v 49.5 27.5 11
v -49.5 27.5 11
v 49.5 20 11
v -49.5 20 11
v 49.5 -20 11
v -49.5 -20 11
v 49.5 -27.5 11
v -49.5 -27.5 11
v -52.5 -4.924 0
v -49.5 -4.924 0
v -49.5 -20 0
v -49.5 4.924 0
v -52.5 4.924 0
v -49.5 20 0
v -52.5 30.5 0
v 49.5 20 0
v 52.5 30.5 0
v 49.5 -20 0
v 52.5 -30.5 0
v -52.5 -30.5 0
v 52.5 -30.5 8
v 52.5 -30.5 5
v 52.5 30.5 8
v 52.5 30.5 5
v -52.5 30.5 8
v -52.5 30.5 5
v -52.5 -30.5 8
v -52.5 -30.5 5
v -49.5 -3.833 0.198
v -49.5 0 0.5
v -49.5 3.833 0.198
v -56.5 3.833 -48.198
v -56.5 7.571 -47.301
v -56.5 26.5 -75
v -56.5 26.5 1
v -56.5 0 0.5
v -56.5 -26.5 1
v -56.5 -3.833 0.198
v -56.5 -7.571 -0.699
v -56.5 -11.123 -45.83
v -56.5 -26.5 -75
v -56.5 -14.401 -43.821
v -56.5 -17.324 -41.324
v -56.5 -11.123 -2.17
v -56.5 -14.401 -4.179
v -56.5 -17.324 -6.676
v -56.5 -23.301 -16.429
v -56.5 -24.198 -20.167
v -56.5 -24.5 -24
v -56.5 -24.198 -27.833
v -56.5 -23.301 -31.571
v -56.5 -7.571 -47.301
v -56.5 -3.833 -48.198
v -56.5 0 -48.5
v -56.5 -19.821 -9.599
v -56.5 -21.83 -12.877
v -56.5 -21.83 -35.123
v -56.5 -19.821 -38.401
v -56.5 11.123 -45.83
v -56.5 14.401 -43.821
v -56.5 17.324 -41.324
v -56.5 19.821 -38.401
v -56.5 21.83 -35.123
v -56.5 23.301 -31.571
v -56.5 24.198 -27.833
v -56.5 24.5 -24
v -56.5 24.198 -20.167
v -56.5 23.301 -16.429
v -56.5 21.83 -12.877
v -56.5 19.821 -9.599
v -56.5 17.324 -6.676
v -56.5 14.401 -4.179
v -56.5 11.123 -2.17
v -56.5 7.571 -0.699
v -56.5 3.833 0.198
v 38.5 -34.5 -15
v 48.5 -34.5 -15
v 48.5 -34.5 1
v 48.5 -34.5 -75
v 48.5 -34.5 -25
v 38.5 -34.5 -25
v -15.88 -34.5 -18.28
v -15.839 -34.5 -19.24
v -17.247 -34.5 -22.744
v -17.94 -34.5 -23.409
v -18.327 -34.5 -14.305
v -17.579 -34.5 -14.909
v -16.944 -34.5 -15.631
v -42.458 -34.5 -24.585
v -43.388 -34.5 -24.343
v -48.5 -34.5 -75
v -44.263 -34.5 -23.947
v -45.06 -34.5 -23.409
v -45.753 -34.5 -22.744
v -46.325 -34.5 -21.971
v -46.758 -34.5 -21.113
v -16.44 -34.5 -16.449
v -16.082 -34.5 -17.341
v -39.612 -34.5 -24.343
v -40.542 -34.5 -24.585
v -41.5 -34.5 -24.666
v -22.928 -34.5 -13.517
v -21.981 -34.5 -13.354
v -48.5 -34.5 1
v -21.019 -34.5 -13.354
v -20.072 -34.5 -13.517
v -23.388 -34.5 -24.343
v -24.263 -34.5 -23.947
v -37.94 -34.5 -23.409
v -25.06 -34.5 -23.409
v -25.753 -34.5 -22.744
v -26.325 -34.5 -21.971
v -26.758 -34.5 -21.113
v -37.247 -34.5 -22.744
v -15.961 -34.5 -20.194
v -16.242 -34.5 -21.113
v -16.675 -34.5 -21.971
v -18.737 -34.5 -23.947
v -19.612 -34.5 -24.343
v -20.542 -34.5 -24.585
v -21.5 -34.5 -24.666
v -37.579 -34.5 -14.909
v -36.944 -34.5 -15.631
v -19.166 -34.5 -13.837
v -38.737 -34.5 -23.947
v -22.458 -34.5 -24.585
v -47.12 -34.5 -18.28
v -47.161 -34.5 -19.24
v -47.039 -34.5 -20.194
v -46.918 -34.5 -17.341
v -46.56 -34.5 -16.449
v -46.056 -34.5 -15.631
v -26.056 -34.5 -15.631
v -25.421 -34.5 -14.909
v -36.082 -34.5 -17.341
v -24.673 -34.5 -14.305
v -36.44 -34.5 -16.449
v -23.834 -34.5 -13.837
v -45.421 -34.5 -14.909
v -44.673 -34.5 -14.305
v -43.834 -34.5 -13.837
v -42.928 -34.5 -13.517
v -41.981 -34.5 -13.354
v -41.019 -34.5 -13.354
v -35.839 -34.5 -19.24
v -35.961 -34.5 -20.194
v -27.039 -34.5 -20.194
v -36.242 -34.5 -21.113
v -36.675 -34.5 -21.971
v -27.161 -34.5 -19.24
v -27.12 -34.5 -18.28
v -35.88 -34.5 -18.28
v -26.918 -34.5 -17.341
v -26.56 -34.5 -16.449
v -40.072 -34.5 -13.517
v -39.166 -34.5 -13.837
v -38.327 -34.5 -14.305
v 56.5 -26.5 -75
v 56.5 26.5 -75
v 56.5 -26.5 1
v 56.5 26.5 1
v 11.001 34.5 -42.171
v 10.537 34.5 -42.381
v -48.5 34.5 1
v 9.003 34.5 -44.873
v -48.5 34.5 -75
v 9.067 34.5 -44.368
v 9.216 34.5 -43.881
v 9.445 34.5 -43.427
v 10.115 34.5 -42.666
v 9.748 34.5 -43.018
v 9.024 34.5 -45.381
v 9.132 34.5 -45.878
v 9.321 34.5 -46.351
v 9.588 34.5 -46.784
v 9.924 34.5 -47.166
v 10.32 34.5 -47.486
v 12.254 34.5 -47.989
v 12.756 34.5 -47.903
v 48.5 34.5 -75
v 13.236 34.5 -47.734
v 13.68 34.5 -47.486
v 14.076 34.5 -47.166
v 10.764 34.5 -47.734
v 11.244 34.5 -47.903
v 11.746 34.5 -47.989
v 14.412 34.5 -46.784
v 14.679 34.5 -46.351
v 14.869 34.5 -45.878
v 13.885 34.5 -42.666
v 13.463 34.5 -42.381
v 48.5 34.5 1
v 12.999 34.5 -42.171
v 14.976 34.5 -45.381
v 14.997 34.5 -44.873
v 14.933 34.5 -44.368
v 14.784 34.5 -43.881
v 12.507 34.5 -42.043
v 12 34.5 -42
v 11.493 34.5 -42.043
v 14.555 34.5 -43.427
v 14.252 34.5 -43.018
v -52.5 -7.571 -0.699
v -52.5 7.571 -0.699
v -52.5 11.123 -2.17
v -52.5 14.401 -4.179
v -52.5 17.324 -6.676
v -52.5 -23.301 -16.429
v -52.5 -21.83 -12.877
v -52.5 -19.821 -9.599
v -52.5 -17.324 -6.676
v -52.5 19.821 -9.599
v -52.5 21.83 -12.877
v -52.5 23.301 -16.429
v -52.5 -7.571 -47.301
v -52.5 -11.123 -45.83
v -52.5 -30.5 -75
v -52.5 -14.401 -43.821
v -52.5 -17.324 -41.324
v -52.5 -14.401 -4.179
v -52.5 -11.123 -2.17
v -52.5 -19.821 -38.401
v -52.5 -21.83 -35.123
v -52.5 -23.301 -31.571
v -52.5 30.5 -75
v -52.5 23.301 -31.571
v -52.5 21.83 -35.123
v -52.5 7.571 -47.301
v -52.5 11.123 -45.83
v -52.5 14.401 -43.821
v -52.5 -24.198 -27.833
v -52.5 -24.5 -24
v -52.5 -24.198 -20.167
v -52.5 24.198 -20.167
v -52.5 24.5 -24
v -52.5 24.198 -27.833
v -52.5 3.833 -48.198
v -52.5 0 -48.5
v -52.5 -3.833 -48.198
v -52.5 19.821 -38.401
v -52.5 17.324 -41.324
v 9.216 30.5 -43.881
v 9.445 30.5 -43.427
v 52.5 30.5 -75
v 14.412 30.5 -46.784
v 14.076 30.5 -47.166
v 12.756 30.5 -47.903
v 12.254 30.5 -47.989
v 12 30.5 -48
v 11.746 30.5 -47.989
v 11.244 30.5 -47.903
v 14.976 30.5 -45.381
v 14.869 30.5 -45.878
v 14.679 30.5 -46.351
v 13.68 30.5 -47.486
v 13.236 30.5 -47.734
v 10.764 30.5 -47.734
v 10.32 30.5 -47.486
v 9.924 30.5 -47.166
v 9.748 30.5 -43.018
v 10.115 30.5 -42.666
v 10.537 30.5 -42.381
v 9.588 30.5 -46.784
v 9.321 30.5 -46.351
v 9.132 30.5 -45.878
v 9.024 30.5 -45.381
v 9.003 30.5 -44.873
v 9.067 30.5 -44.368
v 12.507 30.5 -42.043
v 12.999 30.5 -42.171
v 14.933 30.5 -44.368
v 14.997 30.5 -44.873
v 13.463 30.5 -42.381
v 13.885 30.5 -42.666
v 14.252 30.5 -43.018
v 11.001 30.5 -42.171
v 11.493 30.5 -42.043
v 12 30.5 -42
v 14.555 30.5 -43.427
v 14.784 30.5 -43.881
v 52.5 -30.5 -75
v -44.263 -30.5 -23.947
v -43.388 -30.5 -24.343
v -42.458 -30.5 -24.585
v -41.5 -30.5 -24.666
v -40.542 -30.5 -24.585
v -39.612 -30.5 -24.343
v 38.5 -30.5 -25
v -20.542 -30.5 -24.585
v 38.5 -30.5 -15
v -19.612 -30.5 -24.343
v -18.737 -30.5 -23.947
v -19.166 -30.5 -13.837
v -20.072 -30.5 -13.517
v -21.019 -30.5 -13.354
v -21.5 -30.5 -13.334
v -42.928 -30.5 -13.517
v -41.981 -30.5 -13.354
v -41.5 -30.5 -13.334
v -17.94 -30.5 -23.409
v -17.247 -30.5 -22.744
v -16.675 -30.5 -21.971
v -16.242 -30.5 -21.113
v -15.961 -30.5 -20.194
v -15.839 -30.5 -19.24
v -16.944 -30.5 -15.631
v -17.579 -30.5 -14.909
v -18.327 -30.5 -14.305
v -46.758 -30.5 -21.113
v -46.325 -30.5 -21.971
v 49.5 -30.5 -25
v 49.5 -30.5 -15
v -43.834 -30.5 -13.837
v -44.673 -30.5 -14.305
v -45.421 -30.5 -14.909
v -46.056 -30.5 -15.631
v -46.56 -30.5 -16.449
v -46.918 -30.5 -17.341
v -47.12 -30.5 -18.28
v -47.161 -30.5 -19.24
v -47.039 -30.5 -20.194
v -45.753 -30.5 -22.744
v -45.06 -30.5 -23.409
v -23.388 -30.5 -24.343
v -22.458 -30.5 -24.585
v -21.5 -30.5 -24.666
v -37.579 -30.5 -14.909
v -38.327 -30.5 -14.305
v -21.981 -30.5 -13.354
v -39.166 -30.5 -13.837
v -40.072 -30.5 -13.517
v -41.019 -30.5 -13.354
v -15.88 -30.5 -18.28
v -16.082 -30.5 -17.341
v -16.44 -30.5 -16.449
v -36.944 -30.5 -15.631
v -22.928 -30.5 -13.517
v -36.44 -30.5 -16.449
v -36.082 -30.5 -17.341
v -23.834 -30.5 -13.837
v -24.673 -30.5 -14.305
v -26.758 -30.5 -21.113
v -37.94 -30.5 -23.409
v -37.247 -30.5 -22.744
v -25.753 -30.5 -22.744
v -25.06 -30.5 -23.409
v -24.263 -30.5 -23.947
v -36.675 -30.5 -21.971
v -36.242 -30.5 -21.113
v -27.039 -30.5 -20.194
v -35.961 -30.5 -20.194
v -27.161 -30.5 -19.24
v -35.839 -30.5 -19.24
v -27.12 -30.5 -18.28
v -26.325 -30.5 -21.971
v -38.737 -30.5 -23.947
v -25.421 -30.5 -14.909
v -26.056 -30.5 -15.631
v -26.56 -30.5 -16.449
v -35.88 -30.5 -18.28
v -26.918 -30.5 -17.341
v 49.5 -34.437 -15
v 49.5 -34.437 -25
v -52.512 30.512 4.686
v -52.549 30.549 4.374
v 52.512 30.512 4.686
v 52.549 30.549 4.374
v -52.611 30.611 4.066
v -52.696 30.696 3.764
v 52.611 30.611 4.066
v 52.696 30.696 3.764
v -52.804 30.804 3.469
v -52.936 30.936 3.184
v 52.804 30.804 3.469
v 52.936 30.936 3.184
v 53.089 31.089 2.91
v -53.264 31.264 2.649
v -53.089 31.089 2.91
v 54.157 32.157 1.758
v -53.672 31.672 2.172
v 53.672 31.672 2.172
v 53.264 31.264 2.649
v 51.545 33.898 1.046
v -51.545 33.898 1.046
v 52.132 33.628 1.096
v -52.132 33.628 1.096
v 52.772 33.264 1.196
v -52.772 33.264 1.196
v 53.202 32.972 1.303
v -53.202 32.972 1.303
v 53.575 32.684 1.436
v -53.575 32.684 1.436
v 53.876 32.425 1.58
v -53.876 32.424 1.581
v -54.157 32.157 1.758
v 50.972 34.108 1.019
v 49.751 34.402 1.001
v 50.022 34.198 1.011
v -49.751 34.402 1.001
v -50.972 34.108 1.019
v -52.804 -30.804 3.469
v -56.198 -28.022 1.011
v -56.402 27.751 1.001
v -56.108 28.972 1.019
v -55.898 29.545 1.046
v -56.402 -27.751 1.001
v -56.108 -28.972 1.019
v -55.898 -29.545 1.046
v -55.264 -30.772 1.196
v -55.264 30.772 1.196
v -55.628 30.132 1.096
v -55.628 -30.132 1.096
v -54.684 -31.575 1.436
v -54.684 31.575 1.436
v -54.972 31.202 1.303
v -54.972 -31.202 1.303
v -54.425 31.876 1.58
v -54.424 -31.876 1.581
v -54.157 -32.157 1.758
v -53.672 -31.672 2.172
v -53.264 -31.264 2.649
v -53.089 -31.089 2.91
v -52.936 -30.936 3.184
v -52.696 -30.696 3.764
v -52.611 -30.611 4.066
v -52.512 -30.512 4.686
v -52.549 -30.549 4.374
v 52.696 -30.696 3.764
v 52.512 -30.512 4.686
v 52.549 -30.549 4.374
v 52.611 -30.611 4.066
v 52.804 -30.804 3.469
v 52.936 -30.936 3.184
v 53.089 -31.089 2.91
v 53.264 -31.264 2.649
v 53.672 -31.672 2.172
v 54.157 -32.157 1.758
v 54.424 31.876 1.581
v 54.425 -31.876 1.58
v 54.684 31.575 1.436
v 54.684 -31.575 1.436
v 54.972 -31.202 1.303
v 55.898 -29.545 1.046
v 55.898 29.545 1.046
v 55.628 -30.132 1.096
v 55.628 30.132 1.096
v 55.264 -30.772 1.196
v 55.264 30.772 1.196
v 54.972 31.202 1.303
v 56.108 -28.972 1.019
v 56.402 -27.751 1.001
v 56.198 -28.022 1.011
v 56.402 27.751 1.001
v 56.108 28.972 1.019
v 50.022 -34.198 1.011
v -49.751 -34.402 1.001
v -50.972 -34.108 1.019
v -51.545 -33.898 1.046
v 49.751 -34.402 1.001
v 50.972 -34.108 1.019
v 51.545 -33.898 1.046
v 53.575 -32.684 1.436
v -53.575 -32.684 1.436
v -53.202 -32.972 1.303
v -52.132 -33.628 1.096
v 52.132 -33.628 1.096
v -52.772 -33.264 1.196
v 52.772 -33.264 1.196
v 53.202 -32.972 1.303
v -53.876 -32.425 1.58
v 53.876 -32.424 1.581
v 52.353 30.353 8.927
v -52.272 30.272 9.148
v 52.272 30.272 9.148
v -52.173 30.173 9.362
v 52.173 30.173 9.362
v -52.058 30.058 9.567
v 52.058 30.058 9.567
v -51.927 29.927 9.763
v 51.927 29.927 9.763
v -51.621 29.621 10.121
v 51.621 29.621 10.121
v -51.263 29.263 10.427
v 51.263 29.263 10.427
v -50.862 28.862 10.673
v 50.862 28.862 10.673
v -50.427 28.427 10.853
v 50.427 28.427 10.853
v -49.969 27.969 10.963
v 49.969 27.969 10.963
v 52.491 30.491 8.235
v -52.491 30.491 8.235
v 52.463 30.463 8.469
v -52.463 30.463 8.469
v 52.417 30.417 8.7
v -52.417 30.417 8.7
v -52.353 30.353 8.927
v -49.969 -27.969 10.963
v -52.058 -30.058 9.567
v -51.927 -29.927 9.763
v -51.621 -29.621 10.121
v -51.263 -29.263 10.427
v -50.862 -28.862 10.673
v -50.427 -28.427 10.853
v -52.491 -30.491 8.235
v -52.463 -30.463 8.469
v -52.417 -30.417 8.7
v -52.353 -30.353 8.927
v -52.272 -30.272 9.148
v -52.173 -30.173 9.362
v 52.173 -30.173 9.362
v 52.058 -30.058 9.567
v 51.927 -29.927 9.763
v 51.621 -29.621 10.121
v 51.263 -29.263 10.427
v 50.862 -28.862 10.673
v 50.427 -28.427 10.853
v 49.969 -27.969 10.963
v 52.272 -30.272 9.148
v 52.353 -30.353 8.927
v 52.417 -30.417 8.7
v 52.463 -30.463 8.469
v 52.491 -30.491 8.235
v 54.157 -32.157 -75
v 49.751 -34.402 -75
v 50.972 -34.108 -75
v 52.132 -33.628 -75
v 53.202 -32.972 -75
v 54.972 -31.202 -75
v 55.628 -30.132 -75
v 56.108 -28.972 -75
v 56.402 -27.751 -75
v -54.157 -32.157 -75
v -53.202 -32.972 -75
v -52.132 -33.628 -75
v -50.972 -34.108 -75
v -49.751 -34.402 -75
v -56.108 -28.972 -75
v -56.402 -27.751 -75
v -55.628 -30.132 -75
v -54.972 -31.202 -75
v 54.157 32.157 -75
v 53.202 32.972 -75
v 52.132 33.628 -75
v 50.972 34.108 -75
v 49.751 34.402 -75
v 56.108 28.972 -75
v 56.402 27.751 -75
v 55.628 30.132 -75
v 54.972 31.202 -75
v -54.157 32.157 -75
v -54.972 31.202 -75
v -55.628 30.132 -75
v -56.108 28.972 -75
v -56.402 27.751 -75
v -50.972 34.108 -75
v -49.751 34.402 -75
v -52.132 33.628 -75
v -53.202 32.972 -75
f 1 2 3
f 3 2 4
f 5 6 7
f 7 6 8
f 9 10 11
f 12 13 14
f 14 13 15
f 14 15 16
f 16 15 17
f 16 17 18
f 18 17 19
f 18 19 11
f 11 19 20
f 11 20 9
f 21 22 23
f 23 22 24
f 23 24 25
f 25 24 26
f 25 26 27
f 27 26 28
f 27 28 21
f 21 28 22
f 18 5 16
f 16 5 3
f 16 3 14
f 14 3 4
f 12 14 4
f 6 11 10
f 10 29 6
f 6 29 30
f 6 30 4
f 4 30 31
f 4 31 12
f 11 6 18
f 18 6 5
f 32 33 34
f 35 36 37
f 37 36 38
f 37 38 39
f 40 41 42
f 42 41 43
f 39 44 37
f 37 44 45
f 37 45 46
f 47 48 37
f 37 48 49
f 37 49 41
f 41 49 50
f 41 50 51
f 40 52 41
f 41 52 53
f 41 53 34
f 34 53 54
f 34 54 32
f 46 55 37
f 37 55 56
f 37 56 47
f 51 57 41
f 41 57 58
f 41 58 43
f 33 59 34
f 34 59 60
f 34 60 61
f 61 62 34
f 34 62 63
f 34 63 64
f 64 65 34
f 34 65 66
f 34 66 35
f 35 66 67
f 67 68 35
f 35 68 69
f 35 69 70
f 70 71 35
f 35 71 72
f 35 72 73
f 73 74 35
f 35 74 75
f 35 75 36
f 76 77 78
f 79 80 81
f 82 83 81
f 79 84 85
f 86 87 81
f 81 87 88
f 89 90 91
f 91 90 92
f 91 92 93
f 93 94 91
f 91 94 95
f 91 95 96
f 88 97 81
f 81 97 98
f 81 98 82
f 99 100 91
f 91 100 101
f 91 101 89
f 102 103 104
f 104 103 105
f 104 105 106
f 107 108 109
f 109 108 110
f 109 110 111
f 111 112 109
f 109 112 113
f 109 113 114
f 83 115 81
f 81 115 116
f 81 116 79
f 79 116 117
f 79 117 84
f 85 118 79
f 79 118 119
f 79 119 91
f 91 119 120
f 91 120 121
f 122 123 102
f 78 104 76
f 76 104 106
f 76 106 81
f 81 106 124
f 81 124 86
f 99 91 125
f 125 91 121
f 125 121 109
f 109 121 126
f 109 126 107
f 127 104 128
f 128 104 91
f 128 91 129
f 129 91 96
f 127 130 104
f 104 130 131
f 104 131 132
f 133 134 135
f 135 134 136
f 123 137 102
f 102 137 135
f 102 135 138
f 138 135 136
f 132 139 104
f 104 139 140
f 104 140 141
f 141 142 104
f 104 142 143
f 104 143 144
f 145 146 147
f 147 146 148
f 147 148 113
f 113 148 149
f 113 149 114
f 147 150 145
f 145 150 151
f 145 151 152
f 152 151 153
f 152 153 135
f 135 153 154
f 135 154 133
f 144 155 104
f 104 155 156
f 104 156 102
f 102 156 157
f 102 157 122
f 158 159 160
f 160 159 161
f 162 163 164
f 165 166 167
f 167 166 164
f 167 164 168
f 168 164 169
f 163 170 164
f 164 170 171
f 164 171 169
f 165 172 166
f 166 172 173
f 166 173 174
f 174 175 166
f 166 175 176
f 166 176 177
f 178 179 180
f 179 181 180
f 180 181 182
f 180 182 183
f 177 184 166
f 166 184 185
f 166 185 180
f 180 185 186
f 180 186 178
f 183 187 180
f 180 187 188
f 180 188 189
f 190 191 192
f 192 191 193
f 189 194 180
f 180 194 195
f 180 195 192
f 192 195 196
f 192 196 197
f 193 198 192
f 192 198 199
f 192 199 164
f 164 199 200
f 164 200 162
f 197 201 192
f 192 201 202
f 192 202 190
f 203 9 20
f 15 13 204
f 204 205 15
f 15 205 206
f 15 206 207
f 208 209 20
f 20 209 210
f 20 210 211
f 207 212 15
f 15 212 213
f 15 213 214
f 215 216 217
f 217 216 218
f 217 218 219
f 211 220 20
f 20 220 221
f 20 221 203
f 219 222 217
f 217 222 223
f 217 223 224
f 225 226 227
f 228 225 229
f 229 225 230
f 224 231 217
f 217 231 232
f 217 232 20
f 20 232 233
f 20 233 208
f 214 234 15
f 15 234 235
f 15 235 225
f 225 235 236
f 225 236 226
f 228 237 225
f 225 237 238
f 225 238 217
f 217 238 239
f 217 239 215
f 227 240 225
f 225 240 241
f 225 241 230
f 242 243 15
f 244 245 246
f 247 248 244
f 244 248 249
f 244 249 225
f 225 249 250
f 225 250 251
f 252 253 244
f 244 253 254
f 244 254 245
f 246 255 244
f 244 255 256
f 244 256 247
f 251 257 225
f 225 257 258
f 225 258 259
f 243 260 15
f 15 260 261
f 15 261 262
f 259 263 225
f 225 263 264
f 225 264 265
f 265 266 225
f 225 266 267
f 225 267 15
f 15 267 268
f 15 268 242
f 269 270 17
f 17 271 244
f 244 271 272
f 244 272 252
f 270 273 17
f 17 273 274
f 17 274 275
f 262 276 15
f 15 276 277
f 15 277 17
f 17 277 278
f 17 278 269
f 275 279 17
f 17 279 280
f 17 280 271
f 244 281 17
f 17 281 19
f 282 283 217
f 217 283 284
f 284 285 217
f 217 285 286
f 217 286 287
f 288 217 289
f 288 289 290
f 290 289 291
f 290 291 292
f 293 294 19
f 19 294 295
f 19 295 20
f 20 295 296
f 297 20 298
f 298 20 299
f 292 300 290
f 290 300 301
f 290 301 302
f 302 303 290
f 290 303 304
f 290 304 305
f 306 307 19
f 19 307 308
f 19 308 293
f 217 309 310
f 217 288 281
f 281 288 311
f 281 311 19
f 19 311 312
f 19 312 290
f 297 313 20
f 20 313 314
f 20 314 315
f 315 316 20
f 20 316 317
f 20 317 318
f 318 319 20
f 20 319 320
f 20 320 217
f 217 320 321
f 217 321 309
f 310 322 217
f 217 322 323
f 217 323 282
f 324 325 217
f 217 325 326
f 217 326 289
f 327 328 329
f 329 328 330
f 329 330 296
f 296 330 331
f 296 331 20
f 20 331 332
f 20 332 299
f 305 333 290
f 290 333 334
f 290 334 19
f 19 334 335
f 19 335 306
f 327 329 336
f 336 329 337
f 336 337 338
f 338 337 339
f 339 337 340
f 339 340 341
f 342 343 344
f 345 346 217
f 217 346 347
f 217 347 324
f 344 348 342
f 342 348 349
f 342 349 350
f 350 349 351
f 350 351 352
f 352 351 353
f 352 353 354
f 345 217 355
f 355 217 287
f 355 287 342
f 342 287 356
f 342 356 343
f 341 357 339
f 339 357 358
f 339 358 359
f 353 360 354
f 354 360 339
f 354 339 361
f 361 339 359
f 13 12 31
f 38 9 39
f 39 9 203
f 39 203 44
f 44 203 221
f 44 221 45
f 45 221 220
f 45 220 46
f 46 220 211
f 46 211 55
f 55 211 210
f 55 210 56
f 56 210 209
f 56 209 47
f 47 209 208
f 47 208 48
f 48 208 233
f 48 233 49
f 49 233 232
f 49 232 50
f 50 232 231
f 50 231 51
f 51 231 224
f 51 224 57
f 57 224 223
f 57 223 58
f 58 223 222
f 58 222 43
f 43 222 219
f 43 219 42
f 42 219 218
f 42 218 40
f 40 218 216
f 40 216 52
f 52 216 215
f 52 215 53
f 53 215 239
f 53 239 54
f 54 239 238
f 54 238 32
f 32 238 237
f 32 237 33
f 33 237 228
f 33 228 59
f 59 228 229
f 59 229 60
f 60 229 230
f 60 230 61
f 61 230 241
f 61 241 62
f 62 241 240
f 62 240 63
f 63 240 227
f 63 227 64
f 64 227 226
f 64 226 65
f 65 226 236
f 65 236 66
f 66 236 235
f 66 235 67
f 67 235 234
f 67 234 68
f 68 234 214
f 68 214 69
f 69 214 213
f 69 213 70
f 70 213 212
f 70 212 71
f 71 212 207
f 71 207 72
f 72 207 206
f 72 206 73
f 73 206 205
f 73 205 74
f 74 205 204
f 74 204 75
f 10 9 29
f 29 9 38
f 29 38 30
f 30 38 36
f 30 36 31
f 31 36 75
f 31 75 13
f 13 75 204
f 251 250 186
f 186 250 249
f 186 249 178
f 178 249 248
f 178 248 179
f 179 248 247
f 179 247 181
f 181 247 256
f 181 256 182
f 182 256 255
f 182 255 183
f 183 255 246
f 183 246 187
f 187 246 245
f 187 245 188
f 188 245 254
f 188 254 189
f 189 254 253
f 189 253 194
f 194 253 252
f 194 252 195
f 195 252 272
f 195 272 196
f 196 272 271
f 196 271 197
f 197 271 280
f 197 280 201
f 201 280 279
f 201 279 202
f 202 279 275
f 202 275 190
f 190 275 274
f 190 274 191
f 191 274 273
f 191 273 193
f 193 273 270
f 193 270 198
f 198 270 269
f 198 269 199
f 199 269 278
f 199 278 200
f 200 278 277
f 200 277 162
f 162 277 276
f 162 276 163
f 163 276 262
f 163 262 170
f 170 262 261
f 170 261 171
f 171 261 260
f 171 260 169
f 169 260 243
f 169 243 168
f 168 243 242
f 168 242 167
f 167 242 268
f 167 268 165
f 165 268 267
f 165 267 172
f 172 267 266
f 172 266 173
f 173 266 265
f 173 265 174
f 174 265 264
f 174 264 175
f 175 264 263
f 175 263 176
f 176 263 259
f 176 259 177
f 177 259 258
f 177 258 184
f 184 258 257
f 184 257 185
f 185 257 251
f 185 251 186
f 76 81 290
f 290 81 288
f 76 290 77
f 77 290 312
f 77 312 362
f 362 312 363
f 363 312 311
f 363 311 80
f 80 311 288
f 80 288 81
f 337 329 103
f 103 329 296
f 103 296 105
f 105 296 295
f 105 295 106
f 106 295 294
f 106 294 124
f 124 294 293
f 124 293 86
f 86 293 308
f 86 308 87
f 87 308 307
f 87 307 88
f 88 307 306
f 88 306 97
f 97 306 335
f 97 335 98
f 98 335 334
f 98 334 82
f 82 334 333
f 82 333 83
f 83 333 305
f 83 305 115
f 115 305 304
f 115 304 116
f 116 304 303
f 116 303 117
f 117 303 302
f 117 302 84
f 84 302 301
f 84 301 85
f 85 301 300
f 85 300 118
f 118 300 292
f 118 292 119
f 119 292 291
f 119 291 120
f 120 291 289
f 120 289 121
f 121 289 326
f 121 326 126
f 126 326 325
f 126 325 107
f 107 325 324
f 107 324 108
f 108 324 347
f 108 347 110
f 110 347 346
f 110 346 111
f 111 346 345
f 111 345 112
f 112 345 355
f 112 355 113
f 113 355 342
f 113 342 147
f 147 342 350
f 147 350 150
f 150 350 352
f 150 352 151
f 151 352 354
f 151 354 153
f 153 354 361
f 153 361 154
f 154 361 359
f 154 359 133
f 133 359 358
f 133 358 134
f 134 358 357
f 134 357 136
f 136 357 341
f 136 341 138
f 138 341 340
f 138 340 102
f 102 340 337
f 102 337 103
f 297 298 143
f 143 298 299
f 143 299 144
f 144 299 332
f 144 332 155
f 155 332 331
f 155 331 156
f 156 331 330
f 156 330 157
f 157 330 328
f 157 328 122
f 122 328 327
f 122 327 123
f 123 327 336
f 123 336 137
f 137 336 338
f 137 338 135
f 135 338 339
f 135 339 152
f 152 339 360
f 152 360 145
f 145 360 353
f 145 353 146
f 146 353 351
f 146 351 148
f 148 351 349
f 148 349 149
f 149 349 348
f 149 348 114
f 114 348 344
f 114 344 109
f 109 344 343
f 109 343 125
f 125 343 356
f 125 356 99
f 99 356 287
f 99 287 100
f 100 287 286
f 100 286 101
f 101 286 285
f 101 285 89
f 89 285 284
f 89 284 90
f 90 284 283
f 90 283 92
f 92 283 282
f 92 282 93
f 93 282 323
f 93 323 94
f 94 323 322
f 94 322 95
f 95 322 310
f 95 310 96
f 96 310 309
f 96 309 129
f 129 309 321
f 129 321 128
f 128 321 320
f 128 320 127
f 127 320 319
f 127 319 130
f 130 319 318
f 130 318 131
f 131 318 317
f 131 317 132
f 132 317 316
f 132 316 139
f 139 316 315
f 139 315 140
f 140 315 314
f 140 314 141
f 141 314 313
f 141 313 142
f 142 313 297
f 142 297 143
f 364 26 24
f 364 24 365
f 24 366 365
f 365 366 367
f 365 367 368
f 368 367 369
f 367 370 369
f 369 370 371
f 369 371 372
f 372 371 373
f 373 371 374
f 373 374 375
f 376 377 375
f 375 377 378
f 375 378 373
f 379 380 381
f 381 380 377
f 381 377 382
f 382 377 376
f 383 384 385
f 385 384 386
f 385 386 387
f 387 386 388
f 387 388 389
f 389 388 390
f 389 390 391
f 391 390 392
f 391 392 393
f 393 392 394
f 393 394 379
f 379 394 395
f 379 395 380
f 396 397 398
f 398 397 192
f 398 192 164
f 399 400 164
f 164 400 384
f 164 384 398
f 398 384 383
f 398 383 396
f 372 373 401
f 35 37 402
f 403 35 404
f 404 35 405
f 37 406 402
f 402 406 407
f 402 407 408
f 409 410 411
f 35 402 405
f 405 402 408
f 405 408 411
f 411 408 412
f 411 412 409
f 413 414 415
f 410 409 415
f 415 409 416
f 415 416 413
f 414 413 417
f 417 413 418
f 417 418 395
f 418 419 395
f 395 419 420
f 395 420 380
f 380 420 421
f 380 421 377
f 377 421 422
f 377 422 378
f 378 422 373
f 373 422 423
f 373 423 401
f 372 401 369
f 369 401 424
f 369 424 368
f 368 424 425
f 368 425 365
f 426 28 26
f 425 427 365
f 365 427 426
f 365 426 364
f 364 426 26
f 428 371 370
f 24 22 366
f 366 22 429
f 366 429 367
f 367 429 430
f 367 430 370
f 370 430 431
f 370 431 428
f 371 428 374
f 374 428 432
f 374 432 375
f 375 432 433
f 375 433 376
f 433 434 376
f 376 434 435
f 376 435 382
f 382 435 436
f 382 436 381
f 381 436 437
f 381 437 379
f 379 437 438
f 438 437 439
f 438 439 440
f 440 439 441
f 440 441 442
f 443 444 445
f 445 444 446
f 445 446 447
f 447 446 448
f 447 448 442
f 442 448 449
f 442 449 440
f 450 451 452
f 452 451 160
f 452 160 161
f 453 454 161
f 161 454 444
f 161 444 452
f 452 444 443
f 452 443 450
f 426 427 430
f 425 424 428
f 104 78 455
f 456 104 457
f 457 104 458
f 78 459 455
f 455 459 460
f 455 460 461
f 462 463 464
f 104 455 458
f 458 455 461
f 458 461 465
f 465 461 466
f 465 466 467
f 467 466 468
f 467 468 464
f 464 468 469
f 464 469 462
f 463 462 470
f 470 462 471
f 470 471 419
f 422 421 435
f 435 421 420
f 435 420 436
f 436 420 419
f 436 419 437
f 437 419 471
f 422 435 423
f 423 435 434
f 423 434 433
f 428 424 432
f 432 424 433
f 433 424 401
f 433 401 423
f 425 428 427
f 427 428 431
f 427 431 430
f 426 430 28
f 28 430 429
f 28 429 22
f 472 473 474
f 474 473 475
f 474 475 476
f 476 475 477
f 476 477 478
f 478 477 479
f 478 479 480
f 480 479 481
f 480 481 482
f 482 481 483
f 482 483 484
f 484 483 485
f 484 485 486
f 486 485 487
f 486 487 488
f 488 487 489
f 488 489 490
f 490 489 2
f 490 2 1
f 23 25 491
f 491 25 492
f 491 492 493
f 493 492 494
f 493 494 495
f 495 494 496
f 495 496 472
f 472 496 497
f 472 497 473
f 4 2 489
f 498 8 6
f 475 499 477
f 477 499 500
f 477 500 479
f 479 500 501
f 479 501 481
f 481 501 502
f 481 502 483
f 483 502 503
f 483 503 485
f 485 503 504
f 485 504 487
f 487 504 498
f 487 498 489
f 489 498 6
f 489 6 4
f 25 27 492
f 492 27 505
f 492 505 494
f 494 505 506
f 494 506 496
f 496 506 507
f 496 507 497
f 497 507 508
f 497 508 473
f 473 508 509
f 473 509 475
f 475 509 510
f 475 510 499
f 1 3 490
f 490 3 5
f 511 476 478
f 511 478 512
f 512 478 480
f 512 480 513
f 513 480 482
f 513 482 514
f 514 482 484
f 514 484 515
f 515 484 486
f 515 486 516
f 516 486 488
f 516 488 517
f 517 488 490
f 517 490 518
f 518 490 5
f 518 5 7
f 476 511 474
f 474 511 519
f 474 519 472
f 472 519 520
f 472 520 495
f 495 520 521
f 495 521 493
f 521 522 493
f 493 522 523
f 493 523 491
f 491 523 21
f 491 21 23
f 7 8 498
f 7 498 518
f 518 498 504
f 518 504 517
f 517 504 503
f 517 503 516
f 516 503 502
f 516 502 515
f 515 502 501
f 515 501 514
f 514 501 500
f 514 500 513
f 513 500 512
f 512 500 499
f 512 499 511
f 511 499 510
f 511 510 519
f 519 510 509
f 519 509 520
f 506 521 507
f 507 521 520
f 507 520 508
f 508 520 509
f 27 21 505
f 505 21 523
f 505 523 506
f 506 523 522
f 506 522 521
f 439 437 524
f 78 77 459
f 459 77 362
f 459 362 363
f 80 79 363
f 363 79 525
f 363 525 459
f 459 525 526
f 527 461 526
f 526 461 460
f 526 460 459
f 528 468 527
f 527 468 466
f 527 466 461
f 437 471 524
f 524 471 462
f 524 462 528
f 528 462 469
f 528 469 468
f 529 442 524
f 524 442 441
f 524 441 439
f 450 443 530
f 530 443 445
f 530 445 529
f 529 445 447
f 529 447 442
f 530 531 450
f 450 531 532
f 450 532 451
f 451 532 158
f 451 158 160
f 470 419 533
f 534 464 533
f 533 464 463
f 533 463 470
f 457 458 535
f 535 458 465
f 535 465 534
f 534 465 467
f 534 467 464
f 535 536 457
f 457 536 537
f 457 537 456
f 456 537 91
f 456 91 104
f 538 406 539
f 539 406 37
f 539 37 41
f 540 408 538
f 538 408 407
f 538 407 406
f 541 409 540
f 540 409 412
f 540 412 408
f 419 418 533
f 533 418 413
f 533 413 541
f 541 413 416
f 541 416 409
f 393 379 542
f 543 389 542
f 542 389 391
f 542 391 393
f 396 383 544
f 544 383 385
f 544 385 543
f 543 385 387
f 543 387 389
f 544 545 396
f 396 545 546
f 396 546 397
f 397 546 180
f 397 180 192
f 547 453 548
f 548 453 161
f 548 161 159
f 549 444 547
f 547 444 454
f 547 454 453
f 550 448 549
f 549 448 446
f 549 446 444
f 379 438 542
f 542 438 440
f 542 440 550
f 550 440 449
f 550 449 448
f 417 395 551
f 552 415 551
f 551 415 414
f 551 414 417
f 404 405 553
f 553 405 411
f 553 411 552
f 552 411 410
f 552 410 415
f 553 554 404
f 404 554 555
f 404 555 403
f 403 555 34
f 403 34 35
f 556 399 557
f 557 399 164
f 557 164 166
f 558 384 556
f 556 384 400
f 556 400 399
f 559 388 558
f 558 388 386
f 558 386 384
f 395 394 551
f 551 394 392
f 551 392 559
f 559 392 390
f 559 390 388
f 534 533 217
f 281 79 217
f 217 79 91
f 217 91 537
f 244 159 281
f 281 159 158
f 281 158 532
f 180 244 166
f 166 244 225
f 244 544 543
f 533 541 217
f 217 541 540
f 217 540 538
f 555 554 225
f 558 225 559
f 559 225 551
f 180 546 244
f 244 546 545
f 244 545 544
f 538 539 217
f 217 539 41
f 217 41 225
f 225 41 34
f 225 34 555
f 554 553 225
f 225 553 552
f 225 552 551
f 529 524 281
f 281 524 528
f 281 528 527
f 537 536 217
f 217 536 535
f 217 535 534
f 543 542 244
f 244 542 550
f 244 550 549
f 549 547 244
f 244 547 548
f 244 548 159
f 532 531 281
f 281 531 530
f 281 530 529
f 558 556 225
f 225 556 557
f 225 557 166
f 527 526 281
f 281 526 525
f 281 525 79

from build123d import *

# Parameters (mm, degrees)
IZIM1_W                     = 105
IZIM1_H                     = 61
IZIM1_W_2                   = 99
IZIM1_H_2                   = 40
Y_KSEKLIK_EKSTR_ZYON1_DEPTH = 11
IZIM2_W                     = 113
IZIM2_H                     = 69
IZIM2_W_2                   = 105
IZIM2_H_2                   = 61
Y_KSEKLIK_EKSTR_ZYON2_DEPTH = 70
IZIM3_W                     = 113
IZIM3_H                     = 69
IZIM3_W_2                   = 99
IZIM3_H_2                   = 40
Y_KSEKLIK_EKSTR_ZYON3_DEPTH = 1
IZIM4_R                     = 24.5
KES_EKSTR_ZYON1_DEPTH       = 7
IZIM5_R                     = 3
KES_EKSTR_ZYON2_DEPTH       = 7
IZIM6_R                     = 5.666240849
IZIM6_W                     = 11
IZIM6_H                     = 10
KES_EKSTR_ZYON3_DEPTH       = 7
RADYUS1_R                   = 4
RADYUS2_R                   = 3
RADYUS4_R                   = 8
IZIM14_W                    = 105
IZIM14_H                    = 61
Y_KSEKLIK_EKSTR_ZYON8_DEPTH = 5


# Some blends are built 0.0001 mm under size
with BuildPart() as part:
    # Çizim1 → Yükseklik-Ekstrüzyon1 (new body)
    with BuildSketch(Plane.XY):
        Rectangle(IZIM1_W, IZIM1_H)
        Rectangle(IZIM1_W_2, IZIM1_H_2, mode=Mode.SUBTRACT)
    extrude(amount=Y_KSEKLIK_EKSTR_ZYON1_DEPTH)



with BuildPart() as body_2:
    # Çizim2 → Yükseklik-Ekstrüzyon2 (new body)
    with BuildSketch(Plane(origin=(0, 0, 0), x_dir=(-1, 0, 0), z_dir=(0, 0, -1))):
        Rectangle(IZIM2_W, IZIM2_H)
        Rectangle(IZIM2_W_2, IZIM2_H_2, mode=Mode.SUBTRACT)
    extrude(amount=Y_KSEKLIK_EKSTR_ZYON2_DEPTH)


with BuildPart() as part_1:
    add(part.part)

    add(body_2.part)  # Yükseklik-Ekstrüzyon3 merges body 2
    # Çizim3 → Yükseklik-Ekstrüzyon3 (add)
    with BuildSketch(Plane.XY):
        Rectangle(IZIM3_W, IZIM3_H)
        Rectangle(IZIM3_W_2, IZIM3_H_2, mode=Mode.SUBTRACT)
    extrude(amount=Y_KSEKLIK_EKSTR_ZYON3_DEPTH)

    # Çizim4 → Kes-Ekstrüzyon1 (cut)
    with BuildSketch(Plane.ZY.offset(56.5)):
        with Locations((-24, 0)):
            Circle(IZIM4_R)
    extrude(amount=-KES_EKSTR_ZYON1_DEPTH, mode=Mode.SUBTRACT)

    # Çizim5 → Kes-Ekstrüzyon2 (cut)
    with BuildSketch(Plane(origin=(0, 34.5, 0), x_dir=(1, 0, 0), z_dir=(0, 1, 0))):
        with Locations(Location((12, 45, 0), (0, 0, 270))):
            Circle(IZIM5_R)
    extrude(amount=-KES_EKSTR_ZYON2_DEPTH, mode=Mode.SUBTRACT)

    # Çizim6 → Kes-Ekstrüzyon3 (cut)
    with BuildSketch(Plane(origin=(0, -34.5, 0), x_dir=(-1, 0, 0), z_dir=(0, -1, 0))):
        with Locations(Location((41.5, 19, 0), (0, 0, 90))):
            Circle(IZIM6_R)
        with Locations(Location((21.5, 19, 0), (0, 0, 90))):
            Circle(IZIM6_R)
        with Locations((-44, 20)):
            Rectangle(IZIM6_W, IZIM6_H)
    extrude(amount=-KES_EKSTR_ZYON3_DEPTH, mode=Mode.SUBTRACT)

    # Radyus1
    radyus1_edges = [part_1.edges().sort_by_distance(p)[0] for p in [
        (0, -30.5, 1),
        (52.5, 0, 1),
        (0, 30.5, 1),
        (-52.5, 0, 1),
    ]]
    fillet(radyus1_edges, radius=RADYUS1_R - 0.0001)  # a hair under: the kernel refuses the full size

    # Radyus2
    radyus2_edges = [part_1.edges().sort_by_distance(p)[0] for p in [
        (-52.5, 0, 11),
        (0, -30.5, 11),
        (52.5, 0, 11),
        (0, 30.5, 11),
    ]]
    fillet(radyus2_edges, radius=RADYUS2_R - 0.0001)  # a hair under: the kernel refuses the full size

    # Radyus4
    # the kernel refuses this fillet: 8 mm, written as the material it takes off along each edge
    with BuildSketch(Plane(origin=(56.5, -34.5, 21), x_dir=(0, 1, 0), z_dir=(0, 0, -1)), Plane(origin=(56.5, 34.5, 21), x_dir=(-1, 0, 0), z_dir=(0, 0, -1)), Plane(origin=(-56.5, 34.5, -90), x_dir=(1, 0, 0), z_dir=(0, 0, 1))) as radyus4_piece_1:
        with BuildLine():
            CenterArc((RADYUS4_R, -RADYUS4_R), RADYUS4_R, 90, 90)
            Line((0, -RADYUS4_R), (0, 0))
            Line((0, 0), (RADYUS4_R, 0))
        make_face()
    extrude(amount=111, mode=Mode.SUBTRACT)
    with BuildSketch(Plane(origin=(-56.5, -34.5, 21), x_dir=(0, 1, 0), z_dir=(0, 0, -1))) as radyus4_piece_2:
        with BuildLine():
            CenterArc((RADYUS4_R, RADYUS4_R), RADYUS4_R, 180, 90)
            Line((0, RADYUS4_R), (0, 0))
            Line((0, 0), (RADYUS4_R, 0))
        make_face()
    extrude(amount=111, mode=Mode.SUBTRACT)

    # Çizim14 → Yükseklik-Ekstrüzyon8 (add)
    with BuildSketch(Plane(origin=(0, 0, -70), x_dir=(-1, 0, 0), z_dir=(0, 0, -1))):
        with BuildLine():
            Line((-56.5, 26.5), (-56.5, -26.5))
            ThreePointArc((-56.5, -26.5), (-54.156854249, -32.156854249), (-48.5, -34.5))
            Line((-48.5, -34.5), (48.5, -34.5))
            ThreePointArc((48.5, -34.5), (54.156854249, -32.156854249), (56.5, -26.5))
            Line((56.5, -26.5), (56.5, 26.5))
            ThreePointArc((56.5, 26.5), (54.156854249, 32.156854249), (48.5, 34.5))
            Line((48.5, 34.5), (-48.5, 34.5))
            ThreePointArc((-48.5, 34.5), (-54.156854249, 32.156854249), (-56.5, 26.5))
        make_face()
        Rectangle(IZIM14_W, IZIM14_H, mode=Mode.SUBTRACT)
    extrude(amount=Y_KSEKLIK_EKSTR_ZYON8_DEPTH)


solid = part_1.part
